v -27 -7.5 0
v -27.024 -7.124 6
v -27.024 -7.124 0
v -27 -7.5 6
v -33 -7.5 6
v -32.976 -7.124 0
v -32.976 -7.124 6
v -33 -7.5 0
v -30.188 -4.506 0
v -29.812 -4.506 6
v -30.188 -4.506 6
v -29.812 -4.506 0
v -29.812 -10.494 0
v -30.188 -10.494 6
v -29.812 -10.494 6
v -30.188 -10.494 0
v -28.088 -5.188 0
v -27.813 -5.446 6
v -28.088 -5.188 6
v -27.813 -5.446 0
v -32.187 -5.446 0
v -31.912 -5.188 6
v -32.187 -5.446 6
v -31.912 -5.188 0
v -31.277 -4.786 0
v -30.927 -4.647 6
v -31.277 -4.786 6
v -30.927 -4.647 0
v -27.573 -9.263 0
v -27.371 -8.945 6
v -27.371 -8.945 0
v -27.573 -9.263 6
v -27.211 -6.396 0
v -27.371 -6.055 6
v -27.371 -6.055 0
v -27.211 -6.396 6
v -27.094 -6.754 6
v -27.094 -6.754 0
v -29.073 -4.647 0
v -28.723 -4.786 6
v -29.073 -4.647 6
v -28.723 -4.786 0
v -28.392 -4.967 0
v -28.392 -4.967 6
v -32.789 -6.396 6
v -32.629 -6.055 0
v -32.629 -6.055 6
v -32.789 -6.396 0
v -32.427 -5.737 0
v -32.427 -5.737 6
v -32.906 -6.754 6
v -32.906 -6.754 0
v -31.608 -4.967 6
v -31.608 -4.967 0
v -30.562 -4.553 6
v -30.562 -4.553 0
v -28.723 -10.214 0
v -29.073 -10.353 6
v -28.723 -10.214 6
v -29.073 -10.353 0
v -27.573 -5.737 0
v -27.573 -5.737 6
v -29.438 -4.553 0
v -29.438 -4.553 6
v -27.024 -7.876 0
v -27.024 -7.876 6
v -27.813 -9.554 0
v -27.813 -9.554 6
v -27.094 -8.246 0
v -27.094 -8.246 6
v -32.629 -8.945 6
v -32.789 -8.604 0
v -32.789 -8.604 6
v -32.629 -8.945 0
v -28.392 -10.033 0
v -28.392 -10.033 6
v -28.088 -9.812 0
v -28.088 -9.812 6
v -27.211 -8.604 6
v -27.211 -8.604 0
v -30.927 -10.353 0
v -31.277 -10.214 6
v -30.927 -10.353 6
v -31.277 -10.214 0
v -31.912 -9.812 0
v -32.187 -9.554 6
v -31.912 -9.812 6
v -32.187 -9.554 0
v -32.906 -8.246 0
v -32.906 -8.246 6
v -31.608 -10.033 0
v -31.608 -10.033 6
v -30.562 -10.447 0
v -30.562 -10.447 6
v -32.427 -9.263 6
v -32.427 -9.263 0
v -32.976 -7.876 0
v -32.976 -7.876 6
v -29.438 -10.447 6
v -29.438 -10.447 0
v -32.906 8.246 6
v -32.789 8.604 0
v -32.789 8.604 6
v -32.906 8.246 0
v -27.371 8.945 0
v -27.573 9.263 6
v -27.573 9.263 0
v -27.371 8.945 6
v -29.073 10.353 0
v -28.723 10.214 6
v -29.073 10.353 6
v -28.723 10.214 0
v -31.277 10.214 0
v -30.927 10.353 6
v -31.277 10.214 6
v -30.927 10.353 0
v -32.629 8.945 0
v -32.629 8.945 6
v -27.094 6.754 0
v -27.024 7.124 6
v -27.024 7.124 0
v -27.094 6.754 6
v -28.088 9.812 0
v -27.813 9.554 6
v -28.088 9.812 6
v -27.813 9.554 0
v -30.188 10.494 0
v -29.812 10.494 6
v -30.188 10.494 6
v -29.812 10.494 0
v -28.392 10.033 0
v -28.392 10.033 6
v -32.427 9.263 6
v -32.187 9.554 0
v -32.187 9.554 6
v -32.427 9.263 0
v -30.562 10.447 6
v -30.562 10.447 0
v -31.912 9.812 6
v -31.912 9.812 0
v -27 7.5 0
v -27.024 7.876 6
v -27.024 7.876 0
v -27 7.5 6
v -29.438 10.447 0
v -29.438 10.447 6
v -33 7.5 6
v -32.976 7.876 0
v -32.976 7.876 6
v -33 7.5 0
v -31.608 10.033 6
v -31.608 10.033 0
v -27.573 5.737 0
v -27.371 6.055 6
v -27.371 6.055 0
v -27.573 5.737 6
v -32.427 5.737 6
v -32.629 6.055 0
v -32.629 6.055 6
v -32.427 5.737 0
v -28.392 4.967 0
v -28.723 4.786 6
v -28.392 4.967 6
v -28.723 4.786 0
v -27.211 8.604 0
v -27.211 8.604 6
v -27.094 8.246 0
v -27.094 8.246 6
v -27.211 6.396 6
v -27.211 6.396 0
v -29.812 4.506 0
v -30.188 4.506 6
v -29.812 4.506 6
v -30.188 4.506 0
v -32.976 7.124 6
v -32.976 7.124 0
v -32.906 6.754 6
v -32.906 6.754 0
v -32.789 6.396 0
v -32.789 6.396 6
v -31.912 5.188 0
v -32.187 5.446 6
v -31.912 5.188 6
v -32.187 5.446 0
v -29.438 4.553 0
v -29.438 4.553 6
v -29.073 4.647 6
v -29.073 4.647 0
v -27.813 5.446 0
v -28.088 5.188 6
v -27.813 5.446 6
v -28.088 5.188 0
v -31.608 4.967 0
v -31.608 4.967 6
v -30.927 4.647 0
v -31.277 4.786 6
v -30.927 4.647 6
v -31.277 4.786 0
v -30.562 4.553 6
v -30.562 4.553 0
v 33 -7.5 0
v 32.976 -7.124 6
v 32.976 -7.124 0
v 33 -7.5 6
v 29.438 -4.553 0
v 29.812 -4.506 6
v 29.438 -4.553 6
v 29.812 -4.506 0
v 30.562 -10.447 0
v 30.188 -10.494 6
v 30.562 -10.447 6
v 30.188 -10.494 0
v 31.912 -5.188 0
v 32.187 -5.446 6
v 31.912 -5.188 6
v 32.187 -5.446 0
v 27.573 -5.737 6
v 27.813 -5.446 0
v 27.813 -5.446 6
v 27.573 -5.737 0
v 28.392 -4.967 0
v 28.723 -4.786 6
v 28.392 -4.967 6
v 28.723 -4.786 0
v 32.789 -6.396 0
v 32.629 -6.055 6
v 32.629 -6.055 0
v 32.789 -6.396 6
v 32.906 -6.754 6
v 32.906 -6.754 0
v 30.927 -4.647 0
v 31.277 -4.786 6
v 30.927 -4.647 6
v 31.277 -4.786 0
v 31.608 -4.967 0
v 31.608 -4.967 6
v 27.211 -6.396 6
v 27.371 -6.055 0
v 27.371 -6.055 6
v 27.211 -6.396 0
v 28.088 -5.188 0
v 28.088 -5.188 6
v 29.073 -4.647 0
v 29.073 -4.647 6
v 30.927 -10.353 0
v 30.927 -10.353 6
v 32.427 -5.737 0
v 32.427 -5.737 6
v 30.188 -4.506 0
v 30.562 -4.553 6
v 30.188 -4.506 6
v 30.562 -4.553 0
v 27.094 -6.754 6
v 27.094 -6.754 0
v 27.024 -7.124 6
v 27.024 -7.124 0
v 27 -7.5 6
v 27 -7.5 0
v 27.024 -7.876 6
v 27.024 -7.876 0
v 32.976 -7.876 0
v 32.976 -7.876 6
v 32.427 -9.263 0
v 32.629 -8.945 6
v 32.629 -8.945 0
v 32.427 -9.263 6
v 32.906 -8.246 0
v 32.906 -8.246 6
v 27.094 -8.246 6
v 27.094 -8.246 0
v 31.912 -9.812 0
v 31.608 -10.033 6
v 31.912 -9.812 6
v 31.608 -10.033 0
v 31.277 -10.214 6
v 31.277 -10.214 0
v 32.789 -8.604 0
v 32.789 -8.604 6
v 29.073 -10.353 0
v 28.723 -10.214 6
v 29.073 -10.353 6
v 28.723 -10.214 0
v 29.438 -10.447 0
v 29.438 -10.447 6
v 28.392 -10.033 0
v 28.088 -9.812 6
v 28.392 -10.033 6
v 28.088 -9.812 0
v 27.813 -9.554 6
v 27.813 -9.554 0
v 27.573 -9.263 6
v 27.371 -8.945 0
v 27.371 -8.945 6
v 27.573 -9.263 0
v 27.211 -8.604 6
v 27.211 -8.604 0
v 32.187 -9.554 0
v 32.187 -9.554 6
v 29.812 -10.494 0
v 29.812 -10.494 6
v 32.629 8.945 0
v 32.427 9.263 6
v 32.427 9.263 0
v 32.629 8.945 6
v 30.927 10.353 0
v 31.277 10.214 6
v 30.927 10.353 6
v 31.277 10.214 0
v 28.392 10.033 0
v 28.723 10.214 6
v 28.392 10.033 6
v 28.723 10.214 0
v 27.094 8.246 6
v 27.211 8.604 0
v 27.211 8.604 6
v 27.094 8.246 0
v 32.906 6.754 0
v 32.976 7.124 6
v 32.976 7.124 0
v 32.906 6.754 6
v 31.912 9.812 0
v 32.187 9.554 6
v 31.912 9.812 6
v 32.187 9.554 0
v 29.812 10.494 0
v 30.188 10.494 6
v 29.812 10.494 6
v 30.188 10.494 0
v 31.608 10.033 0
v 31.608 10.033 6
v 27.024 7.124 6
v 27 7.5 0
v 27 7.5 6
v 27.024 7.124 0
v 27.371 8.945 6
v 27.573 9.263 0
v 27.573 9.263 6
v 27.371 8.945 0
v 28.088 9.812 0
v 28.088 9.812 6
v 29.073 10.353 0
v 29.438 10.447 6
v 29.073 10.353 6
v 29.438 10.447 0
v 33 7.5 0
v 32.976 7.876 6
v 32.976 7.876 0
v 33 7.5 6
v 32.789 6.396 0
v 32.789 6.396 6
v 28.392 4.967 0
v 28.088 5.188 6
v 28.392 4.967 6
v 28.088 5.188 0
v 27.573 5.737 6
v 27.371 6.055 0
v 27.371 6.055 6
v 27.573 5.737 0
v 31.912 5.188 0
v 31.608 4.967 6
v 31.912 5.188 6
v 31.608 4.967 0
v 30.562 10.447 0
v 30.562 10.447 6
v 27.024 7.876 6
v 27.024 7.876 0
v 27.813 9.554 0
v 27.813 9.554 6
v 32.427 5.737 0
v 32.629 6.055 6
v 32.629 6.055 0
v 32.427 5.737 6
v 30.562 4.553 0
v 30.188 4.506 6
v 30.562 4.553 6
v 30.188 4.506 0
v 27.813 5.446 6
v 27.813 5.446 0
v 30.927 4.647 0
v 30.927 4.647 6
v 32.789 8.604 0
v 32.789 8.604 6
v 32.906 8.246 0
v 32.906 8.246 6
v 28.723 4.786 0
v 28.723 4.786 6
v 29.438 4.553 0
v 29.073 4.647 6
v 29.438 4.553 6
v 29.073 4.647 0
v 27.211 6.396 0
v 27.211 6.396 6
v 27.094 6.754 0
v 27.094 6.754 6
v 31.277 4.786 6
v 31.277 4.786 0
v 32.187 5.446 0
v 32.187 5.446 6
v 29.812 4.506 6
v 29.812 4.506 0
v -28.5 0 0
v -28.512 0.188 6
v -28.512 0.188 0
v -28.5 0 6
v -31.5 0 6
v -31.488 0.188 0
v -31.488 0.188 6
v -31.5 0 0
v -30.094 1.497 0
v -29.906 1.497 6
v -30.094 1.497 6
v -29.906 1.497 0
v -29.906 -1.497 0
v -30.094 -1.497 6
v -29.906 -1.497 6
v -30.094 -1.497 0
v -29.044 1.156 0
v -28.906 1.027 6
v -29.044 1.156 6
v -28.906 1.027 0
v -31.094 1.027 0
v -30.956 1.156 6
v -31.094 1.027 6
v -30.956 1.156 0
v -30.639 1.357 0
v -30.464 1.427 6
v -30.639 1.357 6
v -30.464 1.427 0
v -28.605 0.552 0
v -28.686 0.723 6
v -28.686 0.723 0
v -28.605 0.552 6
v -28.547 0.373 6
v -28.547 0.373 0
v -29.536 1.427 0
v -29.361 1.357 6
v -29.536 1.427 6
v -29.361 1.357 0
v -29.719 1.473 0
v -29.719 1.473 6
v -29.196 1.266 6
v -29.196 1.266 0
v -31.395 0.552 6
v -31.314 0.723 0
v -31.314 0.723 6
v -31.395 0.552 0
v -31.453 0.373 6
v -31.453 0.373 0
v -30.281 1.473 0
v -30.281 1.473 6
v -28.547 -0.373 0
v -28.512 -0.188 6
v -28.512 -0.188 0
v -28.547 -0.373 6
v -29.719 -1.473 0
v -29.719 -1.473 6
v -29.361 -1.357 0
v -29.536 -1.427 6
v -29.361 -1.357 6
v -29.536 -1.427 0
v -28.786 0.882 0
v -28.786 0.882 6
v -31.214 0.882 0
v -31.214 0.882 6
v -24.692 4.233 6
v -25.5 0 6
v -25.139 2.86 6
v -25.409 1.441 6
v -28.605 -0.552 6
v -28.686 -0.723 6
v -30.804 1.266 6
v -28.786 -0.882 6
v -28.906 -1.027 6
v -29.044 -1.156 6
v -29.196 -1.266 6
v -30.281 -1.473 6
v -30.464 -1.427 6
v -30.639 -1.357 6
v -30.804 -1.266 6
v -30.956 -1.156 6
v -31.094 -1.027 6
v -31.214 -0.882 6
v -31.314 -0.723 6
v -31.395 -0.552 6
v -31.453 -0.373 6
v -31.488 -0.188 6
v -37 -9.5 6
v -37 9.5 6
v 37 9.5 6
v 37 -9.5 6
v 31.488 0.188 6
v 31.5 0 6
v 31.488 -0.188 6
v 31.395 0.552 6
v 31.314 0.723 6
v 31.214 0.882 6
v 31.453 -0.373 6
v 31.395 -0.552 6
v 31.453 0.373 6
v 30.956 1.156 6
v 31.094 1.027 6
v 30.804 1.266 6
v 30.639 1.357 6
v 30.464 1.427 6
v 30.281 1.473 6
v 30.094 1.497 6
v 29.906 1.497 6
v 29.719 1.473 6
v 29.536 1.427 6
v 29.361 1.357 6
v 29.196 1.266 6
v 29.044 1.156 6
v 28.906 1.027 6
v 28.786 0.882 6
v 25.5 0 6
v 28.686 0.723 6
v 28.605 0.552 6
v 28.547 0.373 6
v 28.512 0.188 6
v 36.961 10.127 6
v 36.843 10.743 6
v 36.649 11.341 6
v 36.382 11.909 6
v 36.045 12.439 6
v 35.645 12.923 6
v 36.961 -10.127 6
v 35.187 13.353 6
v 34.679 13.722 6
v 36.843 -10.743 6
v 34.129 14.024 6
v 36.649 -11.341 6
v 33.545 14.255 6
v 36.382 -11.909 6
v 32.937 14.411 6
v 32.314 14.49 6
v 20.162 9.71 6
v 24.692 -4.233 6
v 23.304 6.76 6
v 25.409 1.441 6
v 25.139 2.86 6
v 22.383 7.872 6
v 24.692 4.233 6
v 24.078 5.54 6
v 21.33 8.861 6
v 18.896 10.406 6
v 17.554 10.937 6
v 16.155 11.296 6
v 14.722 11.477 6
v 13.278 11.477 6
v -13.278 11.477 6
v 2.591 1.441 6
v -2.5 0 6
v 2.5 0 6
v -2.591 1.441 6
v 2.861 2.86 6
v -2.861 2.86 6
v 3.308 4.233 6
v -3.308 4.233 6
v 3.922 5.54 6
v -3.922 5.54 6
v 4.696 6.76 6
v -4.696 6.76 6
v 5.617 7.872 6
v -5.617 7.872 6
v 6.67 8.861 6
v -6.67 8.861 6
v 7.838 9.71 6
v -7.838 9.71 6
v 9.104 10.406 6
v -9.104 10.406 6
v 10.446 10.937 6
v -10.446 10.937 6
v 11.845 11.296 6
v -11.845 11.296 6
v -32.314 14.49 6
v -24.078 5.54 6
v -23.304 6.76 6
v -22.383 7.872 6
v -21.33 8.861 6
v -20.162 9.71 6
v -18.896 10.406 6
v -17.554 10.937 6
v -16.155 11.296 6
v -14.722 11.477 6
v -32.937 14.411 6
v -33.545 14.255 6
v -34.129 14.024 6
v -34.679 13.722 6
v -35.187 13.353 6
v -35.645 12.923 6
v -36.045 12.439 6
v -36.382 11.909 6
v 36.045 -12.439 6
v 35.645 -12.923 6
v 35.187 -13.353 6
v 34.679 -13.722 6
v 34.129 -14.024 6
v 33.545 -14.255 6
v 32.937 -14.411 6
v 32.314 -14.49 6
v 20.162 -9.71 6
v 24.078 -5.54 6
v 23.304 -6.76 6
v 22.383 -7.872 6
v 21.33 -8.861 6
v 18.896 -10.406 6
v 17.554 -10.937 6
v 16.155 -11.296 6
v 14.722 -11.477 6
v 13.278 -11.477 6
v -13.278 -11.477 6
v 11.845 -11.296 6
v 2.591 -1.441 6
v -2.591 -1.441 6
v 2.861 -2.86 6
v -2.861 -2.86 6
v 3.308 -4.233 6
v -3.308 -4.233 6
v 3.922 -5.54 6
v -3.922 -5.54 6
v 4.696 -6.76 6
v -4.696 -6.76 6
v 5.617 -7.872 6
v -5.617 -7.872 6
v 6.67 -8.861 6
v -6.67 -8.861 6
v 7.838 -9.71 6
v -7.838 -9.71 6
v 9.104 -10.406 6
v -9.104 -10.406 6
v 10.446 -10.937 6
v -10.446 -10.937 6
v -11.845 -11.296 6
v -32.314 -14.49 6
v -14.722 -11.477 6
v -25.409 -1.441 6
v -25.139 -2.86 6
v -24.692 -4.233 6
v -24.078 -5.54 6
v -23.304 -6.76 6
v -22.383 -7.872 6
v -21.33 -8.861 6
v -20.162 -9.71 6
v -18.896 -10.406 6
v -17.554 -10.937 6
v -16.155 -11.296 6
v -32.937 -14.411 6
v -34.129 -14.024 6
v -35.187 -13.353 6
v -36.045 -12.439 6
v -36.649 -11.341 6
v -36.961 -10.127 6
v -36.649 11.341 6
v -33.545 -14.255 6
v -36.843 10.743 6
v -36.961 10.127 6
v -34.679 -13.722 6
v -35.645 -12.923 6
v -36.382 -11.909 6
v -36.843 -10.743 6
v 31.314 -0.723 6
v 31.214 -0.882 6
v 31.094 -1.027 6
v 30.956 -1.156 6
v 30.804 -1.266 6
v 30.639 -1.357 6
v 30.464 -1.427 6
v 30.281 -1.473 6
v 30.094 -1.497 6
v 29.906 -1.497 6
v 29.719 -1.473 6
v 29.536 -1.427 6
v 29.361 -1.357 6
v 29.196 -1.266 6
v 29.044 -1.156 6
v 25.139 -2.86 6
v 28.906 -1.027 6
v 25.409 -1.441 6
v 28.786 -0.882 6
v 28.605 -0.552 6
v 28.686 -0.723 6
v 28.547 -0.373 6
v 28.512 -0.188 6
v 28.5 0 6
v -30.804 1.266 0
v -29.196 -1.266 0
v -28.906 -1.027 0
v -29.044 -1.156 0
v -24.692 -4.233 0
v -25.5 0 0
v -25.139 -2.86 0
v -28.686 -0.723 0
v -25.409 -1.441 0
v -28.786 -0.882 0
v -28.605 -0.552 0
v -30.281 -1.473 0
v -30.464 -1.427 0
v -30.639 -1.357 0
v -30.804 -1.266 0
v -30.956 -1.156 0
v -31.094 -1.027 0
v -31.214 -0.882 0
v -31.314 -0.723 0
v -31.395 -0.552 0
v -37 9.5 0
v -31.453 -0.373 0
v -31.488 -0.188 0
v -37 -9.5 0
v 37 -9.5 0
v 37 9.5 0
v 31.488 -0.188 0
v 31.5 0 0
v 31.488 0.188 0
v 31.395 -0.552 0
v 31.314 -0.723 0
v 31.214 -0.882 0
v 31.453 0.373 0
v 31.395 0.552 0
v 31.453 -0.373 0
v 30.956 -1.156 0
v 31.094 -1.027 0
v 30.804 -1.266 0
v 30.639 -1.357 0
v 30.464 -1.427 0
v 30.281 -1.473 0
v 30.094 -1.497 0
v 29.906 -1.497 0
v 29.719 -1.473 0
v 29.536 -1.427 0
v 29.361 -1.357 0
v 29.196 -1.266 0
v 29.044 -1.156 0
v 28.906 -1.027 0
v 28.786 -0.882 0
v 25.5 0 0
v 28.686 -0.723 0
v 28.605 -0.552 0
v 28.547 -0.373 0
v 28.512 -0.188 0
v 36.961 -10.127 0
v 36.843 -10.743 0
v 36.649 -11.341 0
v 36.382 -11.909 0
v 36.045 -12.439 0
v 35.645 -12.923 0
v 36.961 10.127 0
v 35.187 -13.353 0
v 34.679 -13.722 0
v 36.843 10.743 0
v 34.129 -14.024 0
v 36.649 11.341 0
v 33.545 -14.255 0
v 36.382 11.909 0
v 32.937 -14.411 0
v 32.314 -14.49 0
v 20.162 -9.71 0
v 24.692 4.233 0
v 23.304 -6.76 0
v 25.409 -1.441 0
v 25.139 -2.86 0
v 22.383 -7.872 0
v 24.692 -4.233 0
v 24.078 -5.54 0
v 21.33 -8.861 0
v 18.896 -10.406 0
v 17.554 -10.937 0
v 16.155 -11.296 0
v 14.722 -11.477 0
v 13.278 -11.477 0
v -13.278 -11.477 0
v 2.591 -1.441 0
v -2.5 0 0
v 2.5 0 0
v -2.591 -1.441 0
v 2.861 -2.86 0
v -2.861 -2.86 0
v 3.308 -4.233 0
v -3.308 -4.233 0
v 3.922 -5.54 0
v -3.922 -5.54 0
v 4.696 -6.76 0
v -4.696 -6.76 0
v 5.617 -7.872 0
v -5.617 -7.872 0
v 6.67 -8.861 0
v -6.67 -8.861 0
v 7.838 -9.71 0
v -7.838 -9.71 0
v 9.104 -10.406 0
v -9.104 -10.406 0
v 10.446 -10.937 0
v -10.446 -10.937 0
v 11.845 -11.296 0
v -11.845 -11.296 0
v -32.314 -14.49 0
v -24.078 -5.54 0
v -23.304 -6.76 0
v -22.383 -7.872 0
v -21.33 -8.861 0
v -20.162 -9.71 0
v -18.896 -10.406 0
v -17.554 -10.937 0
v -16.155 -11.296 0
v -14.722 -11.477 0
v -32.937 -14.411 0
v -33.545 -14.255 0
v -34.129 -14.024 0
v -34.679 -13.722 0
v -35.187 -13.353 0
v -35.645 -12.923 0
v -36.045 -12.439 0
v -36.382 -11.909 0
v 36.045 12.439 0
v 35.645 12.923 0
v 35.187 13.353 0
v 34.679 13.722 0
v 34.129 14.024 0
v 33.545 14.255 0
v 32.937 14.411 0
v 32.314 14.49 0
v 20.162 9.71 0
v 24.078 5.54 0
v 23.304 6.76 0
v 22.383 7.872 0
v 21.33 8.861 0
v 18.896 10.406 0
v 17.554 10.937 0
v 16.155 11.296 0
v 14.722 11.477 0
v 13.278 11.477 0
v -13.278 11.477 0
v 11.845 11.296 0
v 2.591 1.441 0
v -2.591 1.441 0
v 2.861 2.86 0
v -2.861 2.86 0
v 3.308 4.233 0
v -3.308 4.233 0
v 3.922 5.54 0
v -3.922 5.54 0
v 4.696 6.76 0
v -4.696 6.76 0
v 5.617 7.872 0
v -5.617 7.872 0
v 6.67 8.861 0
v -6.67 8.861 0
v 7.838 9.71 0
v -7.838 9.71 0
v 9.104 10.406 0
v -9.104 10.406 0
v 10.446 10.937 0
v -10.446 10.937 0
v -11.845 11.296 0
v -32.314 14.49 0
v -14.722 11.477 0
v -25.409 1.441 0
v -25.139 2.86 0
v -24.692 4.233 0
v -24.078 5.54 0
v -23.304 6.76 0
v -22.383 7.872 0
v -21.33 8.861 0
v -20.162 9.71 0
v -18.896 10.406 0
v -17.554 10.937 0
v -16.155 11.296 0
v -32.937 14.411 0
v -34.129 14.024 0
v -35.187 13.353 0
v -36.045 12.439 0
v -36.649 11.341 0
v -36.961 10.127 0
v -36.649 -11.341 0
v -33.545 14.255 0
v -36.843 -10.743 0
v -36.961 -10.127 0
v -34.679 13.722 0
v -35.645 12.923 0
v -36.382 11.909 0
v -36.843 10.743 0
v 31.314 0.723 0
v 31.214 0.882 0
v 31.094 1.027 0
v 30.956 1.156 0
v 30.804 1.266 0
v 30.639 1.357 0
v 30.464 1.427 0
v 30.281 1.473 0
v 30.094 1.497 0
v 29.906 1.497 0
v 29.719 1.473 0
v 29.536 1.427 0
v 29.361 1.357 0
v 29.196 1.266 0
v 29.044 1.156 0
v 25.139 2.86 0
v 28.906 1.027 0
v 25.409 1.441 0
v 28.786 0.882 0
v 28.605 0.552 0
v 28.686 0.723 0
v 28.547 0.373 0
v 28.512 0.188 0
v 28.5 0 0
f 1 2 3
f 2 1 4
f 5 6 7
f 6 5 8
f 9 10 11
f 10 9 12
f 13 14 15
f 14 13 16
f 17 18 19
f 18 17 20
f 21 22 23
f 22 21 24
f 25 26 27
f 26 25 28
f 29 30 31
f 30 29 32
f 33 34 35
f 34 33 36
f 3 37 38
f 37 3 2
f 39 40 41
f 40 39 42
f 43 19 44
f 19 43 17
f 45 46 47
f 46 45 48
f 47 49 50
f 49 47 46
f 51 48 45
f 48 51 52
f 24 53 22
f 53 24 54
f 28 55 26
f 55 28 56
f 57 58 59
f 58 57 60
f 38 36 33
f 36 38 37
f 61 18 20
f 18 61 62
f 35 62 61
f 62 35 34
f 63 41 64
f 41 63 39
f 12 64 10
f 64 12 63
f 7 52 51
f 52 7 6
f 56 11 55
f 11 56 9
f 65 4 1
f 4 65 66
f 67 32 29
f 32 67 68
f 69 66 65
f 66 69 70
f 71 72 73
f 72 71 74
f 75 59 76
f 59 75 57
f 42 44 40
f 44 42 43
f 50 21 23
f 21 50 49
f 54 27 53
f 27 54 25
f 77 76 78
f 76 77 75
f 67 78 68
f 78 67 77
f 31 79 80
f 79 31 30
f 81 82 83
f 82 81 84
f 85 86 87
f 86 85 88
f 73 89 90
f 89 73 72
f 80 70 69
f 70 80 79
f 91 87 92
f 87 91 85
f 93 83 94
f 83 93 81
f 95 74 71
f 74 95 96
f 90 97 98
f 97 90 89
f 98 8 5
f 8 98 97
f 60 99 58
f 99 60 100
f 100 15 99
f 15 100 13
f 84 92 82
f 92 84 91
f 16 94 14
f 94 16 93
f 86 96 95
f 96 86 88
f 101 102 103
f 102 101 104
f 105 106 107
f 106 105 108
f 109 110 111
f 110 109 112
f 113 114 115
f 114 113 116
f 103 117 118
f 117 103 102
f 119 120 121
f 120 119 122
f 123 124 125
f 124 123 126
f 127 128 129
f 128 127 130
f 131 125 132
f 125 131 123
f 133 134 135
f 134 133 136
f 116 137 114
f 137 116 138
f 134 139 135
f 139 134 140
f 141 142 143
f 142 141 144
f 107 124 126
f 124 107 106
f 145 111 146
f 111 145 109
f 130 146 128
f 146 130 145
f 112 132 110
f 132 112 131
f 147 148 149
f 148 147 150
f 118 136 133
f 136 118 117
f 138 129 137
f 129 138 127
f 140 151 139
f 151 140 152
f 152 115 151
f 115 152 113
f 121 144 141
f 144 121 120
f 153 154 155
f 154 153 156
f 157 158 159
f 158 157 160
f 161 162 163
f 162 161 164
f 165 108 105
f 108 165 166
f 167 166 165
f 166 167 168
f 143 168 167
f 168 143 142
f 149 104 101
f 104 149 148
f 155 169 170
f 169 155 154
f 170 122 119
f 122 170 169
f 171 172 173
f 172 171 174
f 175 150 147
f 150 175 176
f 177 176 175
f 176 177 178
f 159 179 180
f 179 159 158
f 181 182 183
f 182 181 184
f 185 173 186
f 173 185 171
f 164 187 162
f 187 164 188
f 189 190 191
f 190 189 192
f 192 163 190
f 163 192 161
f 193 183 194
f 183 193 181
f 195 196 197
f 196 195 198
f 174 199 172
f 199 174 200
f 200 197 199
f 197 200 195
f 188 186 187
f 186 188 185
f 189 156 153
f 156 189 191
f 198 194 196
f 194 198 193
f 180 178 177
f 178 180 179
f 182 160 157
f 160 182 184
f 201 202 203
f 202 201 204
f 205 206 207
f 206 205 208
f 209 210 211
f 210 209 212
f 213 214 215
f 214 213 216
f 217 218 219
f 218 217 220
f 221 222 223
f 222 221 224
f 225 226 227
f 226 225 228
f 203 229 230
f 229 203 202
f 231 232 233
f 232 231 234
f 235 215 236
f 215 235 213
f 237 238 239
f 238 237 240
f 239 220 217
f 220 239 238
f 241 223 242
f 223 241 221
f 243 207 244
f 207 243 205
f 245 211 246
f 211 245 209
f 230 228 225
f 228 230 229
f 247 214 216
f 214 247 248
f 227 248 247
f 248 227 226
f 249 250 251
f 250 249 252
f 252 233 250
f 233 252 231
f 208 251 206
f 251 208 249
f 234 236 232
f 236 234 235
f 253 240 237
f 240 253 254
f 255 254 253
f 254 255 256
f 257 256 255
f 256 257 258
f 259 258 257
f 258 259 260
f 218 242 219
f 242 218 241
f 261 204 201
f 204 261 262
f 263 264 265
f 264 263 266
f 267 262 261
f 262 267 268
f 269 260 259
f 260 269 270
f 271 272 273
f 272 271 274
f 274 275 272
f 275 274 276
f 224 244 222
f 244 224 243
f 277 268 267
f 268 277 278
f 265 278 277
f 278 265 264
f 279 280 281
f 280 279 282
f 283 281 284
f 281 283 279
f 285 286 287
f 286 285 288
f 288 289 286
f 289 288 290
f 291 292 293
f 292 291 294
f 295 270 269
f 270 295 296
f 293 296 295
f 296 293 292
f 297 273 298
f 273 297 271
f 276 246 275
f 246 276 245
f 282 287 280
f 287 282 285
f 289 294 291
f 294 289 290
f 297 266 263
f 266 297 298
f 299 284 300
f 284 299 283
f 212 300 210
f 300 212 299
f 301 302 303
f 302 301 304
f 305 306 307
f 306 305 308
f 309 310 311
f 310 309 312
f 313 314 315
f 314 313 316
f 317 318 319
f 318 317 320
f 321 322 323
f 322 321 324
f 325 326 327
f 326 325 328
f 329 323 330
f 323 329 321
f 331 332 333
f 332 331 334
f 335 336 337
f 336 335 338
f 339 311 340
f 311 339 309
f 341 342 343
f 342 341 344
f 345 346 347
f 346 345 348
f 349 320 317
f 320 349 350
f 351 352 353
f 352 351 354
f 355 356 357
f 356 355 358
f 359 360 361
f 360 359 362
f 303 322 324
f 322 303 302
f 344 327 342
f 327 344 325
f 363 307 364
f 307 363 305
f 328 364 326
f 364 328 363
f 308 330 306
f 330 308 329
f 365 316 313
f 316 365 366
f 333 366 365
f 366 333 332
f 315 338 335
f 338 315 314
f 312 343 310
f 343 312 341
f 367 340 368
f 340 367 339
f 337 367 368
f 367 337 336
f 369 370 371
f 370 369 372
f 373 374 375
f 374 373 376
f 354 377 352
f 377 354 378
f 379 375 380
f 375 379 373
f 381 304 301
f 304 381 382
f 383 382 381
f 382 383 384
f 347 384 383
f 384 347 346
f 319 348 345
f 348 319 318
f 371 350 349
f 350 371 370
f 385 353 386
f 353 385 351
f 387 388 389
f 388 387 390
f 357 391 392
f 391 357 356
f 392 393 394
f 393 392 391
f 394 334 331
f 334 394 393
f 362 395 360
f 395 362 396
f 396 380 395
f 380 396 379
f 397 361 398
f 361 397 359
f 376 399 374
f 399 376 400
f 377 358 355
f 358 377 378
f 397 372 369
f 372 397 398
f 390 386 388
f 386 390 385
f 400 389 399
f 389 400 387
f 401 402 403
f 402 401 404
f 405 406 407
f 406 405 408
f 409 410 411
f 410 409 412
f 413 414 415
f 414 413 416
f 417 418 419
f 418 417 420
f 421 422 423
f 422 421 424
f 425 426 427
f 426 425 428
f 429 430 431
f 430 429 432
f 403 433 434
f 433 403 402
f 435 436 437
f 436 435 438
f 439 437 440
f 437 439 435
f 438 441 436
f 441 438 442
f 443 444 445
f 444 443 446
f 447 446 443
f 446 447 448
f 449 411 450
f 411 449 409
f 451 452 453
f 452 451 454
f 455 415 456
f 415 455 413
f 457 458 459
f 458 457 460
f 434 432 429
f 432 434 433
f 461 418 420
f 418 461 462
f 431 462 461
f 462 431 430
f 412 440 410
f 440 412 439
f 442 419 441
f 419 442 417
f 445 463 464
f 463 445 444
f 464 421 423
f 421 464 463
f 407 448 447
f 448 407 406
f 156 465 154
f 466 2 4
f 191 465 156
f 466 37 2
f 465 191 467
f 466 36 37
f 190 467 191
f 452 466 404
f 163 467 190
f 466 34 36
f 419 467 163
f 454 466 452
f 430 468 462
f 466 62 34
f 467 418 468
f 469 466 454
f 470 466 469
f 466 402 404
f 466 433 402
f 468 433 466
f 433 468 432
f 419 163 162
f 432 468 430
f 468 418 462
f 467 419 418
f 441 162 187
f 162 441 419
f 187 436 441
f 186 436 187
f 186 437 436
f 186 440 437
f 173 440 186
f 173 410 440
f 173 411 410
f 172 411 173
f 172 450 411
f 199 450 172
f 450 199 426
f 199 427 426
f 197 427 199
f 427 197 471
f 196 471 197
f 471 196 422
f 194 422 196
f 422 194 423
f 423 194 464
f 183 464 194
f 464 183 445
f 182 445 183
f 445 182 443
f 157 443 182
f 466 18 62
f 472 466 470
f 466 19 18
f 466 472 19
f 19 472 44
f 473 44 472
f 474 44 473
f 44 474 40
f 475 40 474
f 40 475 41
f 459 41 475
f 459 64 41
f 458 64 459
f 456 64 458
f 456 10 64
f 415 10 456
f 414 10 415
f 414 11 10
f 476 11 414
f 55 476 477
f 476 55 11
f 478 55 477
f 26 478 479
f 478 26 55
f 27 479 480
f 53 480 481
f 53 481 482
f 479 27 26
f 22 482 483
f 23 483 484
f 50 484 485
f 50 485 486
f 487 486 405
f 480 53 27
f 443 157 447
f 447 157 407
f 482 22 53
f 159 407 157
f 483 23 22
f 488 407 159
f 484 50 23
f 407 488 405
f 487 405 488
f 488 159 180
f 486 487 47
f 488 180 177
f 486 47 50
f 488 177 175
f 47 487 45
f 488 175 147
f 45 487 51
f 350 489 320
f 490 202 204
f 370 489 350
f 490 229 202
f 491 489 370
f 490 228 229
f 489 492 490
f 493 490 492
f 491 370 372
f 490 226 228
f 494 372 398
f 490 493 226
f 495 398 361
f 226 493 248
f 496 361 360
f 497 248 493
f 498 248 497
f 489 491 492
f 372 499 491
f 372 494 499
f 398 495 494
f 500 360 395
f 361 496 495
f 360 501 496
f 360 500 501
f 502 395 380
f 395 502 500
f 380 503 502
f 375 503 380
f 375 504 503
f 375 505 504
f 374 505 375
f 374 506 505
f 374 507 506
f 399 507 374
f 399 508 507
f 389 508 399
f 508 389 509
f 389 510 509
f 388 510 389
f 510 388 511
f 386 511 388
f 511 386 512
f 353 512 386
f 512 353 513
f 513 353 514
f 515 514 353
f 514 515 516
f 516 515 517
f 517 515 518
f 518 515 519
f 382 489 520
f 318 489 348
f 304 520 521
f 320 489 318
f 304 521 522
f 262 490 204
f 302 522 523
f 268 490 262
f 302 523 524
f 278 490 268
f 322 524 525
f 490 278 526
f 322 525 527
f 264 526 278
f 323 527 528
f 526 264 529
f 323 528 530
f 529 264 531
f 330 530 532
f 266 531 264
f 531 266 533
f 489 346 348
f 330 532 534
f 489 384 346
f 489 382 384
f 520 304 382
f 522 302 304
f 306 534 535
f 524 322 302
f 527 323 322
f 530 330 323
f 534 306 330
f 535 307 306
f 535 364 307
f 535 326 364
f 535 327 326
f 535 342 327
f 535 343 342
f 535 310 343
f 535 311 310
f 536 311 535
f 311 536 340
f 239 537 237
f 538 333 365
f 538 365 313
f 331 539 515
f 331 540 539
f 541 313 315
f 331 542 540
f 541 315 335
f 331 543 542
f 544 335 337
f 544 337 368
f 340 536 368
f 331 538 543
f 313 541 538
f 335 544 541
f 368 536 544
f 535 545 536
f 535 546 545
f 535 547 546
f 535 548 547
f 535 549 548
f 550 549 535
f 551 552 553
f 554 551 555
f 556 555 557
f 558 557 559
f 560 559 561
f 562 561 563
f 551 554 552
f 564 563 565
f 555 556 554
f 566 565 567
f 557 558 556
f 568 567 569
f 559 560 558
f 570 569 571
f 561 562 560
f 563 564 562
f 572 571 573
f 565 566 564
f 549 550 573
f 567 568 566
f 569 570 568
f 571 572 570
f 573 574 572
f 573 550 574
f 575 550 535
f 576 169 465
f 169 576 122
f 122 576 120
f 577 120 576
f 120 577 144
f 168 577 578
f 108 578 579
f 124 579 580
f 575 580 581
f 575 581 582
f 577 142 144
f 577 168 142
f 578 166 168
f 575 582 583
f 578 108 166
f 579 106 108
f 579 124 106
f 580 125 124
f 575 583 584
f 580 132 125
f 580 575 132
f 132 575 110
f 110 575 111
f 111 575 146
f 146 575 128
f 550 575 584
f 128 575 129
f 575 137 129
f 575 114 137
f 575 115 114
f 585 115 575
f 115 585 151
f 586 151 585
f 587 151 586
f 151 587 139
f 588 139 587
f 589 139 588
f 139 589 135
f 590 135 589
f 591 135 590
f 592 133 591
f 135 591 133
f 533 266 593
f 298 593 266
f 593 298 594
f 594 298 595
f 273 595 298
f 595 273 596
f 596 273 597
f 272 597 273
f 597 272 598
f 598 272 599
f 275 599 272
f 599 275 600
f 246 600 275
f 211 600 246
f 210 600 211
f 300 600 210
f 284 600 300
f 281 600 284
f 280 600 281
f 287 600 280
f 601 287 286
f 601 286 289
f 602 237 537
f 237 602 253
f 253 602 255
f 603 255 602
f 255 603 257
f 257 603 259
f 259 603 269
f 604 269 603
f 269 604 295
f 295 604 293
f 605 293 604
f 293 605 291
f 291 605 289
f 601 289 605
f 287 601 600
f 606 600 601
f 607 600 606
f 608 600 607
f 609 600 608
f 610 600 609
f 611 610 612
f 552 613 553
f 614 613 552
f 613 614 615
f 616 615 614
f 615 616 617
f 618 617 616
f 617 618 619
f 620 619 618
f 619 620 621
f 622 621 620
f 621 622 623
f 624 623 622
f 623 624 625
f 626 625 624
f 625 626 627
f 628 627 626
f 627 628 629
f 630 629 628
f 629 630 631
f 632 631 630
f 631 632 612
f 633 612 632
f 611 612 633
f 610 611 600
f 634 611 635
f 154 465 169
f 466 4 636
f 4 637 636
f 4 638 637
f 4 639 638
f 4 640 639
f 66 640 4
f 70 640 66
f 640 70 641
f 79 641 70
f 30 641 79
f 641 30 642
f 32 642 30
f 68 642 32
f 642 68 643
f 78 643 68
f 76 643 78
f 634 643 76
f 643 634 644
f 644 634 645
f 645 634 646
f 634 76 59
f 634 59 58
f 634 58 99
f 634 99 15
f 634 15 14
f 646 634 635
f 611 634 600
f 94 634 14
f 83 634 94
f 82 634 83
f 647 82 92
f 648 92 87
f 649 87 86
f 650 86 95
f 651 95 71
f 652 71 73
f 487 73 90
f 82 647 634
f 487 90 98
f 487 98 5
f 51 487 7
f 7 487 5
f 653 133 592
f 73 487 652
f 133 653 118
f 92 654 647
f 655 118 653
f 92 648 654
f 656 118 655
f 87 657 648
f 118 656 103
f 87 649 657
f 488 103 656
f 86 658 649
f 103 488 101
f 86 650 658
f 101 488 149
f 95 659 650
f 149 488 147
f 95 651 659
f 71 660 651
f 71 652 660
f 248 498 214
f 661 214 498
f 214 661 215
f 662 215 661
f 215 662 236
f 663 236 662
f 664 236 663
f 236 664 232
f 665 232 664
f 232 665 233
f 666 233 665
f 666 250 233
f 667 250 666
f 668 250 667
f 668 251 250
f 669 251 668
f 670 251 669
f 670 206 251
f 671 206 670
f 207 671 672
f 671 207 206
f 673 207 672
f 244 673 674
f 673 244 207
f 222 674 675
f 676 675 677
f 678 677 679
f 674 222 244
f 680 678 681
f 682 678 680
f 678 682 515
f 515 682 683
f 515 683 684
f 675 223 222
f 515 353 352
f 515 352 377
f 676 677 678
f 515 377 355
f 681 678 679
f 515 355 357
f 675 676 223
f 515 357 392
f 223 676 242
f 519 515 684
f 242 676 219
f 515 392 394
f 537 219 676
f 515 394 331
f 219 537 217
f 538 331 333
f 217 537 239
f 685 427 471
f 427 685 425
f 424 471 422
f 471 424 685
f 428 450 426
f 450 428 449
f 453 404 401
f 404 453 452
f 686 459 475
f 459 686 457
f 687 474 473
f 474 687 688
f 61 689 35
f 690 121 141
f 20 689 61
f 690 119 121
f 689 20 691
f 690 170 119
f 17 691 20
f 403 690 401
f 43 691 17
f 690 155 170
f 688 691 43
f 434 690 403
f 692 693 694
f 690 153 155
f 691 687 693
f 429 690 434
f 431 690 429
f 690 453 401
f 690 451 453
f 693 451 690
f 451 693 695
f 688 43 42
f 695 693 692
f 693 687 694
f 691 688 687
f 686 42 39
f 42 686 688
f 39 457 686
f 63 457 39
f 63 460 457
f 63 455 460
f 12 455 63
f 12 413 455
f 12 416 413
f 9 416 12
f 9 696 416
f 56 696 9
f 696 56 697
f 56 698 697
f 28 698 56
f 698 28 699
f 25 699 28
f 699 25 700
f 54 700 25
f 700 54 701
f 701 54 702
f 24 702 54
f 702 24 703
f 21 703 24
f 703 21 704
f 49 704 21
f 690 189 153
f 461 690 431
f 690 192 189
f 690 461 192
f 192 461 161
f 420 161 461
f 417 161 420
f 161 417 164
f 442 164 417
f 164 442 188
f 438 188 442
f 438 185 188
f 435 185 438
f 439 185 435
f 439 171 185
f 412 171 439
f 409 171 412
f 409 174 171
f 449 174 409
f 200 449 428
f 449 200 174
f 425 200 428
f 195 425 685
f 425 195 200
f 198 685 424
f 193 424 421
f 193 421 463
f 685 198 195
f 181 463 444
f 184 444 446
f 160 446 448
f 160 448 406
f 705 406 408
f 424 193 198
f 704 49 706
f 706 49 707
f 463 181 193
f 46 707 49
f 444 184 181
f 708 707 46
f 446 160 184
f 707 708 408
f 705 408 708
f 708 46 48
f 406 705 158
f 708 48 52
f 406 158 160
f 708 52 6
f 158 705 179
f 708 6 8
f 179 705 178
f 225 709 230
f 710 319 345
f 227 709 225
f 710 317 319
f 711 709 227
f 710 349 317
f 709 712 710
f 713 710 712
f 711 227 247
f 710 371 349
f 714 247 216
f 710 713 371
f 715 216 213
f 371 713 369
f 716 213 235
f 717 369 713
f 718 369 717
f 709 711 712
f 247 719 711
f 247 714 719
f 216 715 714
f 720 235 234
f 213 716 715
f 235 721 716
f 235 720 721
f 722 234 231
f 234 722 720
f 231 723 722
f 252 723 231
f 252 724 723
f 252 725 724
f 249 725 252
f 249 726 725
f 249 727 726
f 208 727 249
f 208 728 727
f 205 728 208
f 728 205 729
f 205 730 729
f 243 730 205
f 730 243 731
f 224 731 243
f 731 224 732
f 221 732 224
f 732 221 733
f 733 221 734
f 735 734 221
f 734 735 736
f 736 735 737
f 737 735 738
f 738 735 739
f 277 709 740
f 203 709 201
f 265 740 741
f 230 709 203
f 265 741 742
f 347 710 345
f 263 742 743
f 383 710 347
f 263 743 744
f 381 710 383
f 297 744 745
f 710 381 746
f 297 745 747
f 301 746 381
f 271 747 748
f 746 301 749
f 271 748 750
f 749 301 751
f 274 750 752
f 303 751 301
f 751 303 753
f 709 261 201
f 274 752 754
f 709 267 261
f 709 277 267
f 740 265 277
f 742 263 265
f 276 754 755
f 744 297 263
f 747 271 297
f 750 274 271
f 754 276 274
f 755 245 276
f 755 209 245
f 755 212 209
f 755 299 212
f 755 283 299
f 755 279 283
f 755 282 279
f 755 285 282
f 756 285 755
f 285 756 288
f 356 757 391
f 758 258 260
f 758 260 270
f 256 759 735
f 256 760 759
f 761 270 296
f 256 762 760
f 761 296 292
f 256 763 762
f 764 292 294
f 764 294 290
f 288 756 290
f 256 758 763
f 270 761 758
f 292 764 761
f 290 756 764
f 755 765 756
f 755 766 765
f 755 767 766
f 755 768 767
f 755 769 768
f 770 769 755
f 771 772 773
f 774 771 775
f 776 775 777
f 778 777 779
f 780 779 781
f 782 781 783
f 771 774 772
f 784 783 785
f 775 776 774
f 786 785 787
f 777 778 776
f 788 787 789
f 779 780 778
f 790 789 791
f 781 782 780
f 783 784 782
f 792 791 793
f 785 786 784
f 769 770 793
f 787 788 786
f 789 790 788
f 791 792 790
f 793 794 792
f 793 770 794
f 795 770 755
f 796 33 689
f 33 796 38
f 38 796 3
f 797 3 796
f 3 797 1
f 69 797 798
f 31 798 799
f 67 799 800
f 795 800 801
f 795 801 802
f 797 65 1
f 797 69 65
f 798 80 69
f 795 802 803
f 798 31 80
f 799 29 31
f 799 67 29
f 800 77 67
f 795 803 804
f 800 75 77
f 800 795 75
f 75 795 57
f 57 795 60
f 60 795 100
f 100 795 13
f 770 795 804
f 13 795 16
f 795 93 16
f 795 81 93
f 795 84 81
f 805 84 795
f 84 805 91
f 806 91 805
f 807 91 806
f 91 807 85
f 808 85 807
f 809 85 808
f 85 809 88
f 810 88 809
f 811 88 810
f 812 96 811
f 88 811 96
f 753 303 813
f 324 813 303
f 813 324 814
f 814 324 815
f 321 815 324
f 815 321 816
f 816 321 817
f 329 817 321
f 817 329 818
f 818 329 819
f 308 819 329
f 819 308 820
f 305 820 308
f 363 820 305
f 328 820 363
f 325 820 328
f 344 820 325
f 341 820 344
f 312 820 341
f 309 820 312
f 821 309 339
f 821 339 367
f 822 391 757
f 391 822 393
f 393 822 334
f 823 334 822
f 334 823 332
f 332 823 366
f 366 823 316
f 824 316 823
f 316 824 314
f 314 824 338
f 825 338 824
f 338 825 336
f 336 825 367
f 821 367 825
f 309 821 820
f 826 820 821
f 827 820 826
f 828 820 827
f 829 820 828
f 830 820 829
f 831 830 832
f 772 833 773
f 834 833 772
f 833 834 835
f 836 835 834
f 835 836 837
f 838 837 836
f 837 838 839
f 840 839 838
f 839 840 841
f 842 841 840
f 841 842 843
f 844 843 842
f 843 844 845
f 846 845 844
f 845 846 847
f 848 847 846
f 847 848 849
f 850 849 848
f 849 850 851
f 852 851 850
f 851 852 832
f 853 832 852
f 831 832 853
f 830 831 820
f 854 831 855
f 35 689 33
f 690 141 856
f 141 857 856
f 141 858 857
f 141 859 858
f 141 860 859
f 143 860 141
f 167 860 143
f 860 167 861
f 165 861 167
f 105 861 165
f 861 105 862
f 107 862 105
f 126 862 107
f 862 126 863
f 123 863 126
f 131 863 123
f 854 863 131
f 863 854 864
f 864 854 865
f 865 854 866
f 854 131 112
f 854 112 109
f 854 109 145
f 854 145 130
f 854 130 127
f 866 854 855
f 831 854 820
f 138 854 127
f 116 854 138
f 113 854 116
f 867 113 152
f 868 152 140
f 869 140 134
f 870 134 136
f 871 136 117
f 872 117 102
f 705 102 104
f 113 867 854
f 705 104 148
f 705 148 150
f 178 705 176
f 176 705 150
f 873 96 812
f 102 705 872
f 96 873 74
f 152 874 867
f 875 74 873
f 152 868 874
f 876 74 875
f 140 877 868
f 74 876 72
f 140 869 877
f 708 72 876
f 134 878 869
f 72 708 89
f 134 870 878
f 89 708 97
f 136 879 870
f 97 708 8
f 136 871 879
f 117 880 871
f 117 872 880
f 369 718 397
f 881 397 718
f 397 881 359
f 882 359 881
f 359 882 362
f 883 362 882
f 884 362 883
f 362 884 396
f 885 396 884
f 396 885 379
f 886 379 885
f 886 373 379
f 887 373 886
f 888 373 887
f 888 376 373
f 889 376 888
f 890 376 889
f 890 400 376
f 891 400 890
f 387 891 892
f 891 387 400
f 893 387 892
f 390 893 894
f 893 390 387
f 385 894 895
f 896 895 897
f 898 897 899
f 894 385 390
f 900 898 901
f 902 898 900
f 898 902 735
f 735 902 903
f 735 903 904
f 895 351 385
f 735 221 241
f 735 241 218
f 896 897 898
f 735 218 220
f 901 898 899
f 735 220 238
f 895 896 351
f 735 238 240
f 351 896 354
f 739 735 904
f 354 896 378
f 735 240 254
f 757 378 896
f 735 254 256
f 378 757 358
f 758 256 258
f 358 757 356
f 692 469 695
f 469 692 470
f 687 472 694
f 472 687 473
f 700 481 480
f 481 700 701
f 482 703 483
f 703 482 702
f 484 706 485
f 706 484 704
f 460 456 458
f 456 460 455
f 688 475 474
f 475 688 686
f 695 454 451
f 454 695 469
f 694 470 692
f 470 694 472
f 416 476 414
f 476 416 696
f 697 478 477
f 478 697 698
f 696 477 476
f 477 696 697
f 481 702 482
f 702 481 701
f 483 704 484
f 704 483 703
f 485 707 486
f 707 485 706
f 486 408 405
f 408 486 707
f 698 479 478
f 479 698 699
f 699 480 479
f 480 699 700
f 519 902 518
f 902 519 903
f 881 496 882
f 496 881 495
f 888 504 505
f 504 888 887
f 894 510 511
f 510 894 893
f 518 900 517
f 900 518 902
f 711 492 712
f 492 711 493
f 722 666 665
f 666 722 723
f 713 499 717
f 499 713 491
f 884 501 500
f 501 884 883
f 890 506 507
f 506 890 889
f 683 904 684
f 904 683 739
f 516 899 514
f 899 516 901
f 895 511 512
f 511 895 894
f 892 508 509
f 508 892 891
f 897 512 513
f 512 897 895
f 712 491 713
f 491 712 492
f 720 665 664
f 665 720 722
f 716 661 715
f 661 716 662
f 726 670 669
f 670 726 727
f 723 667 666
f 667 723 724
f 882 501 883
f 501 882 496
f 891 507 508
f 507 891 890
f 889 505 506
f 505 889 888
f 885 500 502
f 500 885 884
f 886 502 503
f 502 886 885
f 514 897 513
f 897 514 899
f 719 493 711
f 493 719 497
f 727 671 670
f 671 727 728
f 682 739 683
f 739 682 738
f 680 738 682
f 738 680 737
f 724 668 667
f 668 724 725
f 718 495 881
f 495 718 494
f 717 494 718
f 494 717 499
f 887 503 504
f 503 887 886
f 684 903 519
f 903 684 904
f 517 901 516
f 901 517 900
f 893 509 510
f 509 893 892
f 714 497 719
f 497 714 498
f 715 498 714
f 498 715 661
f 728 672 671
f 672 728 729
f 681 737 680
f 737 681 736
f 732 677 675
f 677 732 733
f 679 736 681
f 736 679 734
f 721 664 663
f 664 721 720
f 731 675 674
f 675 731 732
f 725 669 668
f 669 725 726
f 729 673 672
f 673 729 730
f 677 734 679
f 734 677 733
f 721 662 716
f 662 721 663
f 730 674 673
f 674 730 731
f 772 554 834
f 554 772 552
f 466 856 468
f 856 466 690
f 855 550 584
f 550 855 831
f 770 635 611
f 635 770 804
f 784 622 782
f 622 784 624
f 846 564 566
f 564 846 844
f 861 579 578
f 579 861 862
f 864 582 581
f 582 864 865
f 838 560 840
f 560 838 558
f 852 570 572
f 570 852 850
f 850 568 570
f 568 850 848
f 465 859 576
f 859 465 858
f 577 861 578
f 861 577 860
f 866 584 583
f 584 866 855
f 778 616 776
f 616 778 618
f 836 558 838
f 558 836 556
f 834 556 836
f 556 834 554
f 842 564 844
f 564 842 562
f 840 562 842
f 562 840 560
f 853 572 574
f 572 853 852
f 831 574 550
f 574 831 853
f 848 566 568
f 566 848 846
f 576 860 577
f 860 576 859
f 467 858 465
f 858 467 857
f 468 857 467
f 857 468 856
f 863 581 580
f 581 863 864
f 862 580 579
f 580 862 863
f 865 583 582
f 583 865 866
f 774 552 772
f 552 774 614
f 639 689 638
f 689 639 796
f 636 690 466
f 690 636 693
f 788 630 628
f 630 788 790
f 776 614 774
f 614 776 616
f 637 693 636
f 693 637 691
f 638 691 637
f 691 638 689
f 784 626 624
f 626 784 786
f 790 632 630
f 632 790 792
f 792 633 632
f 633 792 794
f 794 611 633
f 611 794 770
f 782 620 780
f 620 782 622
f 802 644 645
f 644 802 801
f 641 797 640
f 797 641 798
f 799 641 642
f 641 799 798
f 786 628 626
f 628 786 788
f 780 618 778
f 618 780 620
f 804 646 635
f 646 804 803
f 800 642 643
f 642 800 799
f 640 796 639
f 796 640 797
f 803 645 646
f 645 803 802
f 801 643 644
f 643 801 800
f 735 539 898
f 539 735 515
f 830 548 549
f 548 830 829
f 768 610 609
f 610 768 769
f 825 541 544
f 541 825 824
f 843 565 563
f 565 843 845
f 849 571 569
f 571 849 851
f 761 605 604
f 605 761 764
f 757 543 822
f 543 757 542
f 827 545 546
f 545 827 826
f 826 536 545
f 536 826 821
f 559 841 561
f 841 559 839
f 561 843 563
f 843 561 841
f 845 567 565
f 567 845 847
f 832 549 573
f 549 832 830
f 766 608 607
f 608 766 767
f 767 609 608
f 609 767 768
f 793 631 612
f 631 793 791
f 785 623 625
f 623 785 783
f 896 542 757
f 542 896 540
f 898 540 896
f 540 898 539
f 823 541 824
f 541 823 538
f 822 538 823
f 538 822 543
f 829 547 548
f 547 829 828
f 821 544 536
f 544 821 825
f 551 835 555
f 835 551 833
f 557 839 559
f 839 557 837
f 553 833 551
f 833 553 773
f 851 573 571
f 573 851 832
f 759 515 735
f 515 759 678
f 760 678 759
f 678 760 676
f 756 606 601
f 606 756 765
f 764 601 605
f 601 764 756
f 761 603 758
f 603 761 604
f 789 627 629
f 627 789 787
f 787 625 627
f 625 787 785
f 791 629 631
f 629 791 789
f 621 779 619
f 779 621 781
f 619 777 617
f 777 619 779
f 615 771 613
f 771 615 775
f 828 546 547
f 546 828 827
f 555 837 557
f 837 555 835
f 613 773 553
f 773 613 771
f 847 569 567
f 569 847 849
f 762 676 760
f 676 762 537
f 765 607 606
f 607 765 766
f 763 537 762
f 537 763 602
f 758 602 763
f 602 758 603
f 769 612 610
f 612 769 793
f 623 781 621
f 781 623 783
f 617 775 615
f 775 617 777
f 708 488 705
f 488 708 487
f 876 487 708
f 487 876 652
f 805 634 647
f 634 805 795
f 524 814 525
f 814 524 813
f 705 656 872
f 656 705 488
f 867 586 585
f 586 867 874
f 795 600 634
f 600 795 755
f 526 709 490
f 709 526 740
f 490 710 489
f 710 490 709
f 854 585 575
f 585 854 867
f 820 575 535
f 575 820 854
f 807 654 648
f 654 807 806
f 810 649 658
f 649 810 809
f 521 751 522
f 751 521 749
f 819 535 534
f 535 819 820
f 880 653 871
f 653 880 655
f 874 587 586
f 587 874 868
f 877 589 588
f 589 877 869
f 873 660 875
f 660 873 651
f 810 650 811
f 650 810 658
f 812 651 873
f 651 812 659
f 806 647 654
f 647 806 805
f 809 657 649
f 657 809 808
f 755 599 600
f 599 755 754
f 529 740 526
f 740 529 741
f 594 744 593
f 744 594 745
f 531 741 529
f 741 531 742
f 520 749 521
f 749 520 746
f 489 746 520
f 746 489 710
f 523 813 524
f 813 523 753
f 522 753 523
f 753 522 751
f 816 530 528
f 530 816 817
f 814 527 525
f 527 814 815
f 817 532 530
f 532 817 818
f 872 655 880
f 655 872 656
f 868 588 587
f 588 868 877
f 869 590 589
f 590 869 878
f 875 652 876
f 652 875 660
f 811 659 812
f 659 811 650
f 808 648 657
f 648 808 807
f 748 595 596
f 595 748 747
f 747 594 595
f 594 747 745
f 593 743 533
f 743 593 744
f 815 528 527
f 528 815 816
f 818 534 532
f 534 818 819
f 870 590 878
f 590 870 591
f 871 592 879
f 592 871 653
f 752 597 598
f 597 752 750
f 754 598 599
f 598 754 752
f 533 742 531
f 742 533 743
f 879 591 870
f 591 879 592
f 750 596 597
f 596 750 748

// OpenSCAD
$fn = 50;


difference() {
	union() {
		hull() {
			translate(v = [-32.0000000000, 9.5000000000, 0]) {
				cylinder(h = 6, r = 5);
			}
			translate(v = [32.0000000000, 9.5000000000, 0]) {
				cylinder(h = 6, r = 5);
			}
			translate(v = [-32.0000000000, -9.5000000000, 0]) {
				cylinder(h = 6, r = 5);
			}
			translate(v = [32.0000000000, -9.5000000000, 0]) {
				cylinder(h = 6, r = 5);
			}
		}
	}
	union() {
		#translate(v = [-30.0000000000, -7.5000000000, 0]) {
			cylinder(h = 6, r = 3.0000000000);
		}
		#translate(v = [-30.0000000000, 7.5000000000, 0]) {
			cylinder(h = 6, r = 3.0000000000);
		}
		#translate(v = [30.0000000000, -7.5000000000, 0]) {
			cylinder(h = 6, r = 3.0000000000);
		}
		#translate(v = [30.0000000000, 7.5000000000, 0]) {
			cylinder(h = 6, r = 3.0000000000);
		}
		#translate(v = [-30.0000000000, -7.5000000000, -100.0000000000]) {
			cylinder(h = 200, r = 3.0000000000);
		}
		#translate(v = [-30.0000000000, 7.5000000000, -100.0000000000]) {
			cylinder(h = 200, r = 3.0000000000);
		}
		#translate(v = [30.0000000000, -7.5000000000, -100.0000000000]) {
			cylinder(h = 200, r = 3.0000000000);
		}
		#translate(v = [30.0000000000, 7.5000000000, -100.0000000000]) {
			cylinder(h = 200, r = 3.0000000000);
		}
		#translate(v = [-30.0000000000, -7.5000000000, 0]) {
			cylinder(h = 6, r = 1.5000000000);
		}
		#translate(v = [-30.0000000000, 0.0000000000, 0]) {
			cylinder(h = 6, r = 1.5000000000);
		}
		#translate(v = [-30.0000000000, 7.5000000000, 0]) {
			cylinder(h = 6, r = 1.5000000000);
		}
		#translate(v = [30.0000000000, -7.5000000000, 0]) {
			cylinder(h = 6, r = 1.5000000000);
		}
		#translate(v = [30.0000000000, 0.0000000000, 0]) {
			cylinder(h = 6, r = 1.5000000000);
		}
		#translate(v = [30.0000000000, 7.5000000000, 0]) {
			cylinder(h = 6, r = 1.5000000000);
		}
		#translate(v = [-30.0000000000, -7.5000000000, 0]) {
			cylinder(h = 6, r = 1.5000000000);
		}
		#translate(v = [-30.0000000000, 0.0000000000, 0]) {
			cylinder(h = 6, r = 1.5000000000);
		}
		#translate(v = [-30.0000000000, 7.5000000000, 0]) {
			cylinder(h = 6, r = 1.5000000000);
		}
		#translate(v = [30.0000000000, -7.5000000000, 0]) {
			cylinder(h = 6, r = 1.5000000000);
		}
		#translate(v = [30.0000000000, 0.0000000000, 0]) {
			cylinder(h = 6, r = 1.5000000000);
		}
		#translate(v = [30.0000000000, 7.5000000000, 0]) {
			cylinder(h = 6, r = 1.5000000000);
		}
		#translate(v = [-30.0000000000, -7.5000000000, 0]) {
			cylinder(h = 6, r = 1.5000000000);
		}
		#translate(v = [-30.0000000000, 0.0000000000, 0]) {
			cylinder(h = 6, r = 1.5000000000);
		}
		#translate(v = [-30.0000000000, 7.5000000000, 0]) {
			cylinder(h = 6, r = 1.5000000000);
		}
		#translate(v = [30.0000000000, -7.5000000000, 0]) {
			cylinder(h = 6, r = 1.5000000000);
		}
		#translate(v = [30.0000000000, 0.0000000000, 0]) {
			cylinder(h = 6, r = 1.5000000000);
		}
		#translate(v = [30.0000000000, 7.5000000000, 0]) {
			cylinder(h = 6, r = 1.5000000000);
		}
		#translate(v = [-14.0000000000, 0, 0]) {
			cylinder(h = 6, r = 11.5000000000);
		}
		#translate(v = [14.0000000000, 0, 0]) {
			cylinder(h = 6, r = 11.5000000000);
		}
	}
}
